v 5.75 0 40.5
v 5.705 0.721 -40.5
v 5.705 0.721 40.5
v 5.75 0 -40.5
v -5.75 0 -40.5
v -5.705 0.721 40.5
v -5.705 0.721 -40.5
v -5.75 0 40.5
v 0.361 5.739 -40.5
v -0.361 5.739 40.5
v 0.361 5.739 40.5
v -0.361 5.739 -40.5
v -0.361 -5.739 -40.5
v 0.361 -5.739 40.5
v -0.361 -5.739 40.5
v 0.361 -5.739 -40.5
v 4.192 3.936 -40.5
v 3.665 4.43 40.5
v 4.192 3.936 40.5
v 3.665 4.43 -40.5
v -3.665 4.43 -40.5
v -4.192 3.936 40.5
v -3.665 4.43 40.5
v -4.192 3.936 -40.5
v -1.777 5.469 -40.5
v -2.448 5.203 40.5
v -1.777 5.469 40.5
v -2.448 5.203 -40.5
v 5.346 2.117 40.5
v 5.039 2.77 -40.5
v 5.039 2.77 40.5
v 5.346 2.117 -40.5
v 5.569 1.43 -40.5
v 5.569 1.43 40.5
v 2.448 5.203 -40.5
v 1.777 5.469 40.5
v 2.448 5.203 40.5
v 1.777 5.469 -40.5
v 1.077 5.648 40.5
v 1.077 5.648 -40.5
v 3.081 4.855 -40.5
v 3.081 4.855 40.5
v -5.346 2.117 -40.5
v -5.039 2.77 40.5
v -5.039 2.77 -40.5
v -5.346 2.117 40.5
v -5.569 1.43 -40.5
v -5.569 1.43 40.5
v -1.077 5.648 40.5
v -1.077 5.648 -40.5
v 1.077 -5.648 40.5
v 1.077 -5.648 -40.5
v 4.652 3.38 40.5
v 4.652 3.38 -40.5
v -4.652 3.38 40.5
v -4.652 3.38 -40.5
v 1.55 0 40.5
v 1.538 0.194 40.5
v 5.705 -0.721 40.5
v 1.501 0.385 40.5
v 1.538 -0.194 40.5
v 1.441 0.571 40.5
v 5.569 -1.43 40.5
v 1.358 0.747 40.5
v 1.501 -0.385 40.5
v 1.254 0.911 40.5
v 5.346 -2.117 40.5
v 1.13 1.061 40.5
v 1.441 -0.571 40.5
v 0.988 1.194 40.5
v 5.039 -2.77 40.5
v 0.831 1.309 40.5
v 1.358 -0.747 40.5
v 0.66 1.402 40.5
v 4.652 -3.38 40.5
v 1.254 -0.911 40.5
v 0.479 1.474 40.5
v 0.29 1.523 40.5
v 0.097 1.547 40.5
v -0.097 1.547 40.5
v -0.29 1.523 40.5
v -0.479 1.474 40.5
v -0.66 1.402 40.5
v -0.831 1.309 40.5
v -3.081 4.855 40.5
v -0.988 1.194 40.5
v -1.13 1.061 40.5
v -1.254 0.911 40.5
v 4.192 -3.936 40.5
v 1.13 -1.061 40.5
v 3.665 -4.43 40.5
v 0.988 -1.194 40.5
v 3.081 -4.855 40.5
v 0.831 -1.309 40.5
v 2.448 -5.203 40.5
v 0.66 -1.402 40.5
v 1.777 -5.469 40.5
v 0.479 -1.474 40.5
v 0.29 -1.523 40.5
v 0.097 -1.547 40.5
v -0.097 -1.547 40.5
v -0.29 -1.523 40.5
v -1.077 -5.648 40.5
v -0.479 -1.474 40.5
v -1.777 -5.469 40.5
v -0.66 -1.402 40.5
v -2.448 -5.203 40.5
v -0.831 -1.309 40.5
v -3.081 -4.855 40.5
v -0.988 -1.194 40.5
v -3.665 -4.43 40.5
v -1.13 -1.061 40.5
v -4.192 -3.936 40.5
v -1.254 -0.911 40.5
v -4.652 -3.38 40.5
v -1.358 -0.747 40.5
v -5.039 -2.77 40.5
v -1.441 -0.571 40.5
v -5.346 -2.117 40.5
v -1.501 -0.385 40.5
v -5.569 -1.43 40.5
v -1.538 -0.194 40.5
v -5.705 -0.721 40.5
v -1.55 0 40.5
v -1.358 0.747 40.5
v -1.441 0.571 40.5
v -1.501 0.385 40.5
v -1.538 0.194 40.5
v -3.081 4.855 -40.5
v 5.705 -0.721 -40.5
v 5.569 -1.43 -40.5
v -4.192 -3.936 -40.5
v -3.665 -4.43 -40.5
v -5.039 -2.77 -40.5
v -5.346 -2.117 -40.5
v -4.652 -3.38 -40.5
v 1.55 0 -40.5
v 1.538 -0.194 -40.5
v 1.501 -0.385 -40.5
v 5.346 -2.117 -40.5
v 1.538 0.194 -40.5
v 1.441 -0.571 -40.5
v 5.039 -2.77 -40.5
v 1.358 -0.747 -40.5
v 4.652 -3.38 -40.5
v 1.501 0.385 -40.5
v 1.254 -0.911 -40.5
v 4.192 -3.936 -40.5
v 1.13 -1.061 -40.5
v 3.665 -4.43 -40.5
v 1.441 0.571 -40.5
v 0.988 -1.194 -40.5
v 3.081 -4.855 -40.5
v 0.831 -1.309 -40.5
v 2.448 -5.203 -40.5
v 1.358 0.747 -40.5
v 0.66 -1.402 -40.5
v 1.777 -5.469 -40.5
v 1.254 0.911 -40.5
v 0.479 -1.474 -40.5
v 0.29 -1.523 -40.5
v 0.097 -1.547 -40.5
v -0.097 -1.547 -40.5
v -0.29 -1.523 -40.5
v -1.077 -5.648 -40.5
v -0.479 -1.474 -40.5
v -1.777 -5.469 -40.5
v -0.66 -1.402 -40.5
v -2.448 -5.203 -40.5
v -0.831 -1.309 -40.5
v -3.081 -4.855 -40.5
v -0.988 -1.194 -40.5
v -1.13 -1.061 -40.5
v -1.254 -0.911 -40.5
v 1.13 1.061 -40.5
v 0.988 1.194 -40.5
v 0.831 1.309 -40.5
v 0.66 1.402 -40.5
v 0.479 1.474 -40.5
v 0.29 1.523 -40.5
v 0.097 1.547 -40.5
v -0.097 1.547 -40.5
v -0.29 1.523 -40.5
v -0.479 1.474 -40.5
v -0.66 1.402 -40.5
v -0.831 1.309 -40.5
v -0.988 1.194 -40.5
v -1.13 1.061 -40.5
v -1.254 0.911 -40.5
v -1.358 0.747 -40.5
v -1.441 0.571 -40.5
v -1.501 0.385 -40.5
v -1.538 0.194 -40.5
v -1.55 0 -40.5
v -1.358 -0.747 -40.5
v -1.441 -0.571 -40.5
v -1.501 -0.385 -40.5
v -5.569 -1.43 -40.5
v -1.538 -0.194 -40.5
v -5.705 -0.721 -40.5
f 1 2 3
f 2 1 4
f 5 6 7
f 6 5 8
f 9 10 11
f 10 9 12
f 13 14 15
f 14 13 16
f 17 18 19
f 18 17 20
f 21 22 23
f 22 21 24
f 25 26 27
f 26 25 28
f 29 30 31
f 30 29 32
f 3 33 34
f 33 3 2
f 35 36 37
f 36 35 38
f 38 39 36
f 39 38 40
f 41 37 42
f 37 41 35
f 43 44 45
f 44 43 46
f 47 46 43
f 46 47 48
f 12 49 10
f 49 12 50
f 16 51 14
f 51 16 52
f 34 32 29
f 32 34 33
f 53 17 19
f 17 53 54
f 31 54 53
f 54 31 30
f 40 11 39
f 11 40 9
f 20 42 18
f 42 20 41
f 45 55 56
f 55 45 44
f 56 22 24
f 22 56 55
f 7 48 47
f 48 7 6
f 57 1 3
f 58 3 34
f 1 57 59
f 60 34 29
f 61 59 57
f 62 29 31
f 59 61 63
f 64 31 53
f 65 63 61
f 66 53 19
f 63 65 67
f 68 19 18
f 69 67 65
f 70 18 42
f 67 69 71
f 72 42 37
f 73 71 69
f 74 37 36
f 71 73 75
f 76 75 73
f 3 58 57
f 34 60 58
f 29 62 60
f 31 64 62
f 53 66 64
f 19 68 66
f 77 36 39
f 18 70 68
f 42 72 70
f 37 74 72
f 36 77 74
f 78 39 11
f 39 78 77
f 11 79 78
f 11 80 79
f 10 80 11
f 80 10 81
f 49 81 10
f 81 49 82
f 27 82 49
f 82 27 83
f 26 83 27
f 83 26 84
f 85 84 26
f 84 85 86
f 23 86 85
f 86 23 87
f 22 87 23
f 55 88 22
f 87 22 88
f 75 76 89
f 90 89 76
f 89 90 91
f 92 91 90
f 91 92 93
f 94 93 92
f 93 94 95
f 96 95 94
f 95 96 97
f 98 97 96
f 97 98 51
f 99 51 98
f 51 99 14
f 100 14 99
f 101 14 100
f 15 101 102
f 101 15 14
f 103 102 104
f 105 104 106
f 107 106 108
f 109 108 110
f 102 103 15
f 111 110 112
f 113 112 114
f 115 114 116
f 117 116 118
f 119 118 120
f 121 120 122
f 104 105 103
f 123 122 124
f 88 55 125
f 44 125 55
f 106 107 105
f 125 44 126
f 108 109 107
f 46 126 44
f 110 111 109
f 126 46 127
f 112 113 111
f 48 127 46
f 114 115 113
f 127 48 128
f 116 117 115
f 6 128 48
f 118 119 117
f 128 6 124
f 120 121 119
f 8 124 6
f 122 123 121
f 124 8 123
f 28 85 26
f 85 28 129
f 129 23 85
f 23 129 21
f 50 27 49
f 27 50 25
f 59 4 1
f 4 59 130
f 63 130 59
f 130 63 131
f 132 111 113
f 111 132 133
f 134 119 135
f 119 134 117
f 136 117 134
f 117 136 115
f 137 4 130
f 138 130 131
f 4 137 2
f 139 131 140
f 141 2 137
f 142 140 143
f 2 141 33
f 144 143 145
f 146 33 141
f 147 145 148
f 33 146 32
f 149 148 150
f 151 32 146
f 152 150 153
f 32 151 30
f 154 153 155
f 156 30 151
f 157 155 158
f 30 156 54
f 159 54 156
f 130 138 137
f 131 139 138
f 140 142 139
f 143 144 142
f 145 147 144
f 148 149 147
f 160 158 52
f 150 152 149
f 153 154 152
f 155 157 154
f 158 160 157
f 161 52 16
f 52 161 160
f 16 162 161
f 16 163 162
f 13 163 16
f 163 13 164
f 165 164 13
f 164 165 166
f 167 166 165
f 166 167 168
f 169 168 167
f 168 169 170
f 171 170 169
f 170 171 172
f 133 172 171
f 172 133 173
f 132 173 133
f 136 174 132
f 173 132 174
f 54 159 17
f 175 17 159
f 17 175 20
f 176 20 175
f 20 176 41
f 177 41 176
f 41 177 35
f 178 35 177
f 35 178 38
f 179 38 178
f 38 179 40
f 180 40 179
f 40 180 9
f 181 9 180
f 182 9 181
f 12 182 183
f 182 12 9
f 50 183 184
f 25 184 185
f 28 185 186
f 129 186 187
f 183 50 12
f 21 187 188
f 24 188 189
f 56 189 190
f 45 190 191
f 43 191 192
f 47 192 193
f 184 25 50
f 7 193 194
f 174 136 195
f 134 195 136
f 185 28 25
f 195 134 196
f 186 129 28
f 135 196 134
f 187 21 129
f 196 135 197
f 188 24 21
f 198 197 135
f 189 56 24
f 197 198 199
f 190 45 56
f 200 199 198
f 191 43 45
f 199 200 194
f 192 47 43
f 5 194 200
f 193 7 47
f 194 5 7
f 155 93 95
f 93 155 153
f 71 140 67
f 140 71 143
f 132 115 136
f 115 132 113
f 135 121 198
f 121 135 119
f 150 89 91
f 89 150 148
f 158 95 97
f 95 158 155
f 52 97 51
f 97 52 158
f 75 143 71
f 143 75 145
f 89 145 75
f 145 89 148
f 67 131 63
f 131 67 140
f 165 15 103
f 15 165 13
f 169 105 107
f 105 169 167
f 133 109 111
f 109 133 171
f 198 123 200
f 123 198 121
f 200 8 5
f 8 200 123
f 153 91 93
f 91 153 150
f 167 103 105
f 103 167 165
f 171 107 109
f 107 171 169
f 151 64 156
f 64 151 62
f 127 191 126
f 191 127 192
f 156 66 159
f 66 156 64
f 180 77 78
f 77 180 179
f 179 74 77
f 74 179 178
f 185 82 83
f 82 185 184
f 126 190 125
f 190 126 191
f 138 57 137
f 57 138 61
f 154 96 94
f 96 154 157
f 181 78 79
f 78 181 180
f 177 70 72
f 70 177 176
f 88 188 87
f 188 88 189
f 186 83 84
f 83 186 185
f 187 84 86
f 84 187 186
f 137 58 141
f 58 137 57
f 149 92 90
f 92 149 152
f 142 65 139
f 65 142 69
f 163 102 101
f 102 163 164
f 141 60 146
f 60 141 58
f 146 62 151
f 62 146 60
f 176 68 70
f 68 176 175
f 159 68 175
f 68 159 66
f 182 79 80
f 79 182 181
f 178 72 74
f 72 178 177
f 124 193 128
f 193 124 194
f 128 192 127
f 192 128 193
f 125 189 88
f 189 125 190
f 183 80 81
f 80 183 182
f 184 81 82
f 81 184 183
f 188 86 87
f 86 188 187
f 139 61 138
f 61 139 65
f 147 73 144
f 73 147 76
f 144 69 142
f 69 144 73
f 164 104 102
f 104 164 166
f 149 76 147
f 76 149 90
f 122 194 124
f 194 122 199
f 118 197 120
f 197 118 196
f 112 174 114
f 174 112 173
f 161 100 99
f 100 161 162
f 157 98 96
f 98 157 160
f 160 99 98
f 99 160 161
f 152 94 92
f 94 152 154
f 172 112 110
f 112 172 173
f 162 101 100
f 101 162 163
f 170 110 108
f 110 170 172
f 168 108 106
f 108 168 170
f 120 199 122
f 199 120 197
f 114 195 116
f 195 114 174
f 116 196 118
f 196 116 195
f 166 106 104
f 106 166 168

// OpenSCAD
$fn = 50;


difference() {
	union() {
		translate(v = [0, 0, -40.5000000000]) {
			cylinder(h = 81, r = 5.7500000000);
		}
	}
	union() {
		translate(v = [0, 0, -100.0000000000]) {
			cylinder(h = 200, r = 1.5500000000);
		}
	}
}
